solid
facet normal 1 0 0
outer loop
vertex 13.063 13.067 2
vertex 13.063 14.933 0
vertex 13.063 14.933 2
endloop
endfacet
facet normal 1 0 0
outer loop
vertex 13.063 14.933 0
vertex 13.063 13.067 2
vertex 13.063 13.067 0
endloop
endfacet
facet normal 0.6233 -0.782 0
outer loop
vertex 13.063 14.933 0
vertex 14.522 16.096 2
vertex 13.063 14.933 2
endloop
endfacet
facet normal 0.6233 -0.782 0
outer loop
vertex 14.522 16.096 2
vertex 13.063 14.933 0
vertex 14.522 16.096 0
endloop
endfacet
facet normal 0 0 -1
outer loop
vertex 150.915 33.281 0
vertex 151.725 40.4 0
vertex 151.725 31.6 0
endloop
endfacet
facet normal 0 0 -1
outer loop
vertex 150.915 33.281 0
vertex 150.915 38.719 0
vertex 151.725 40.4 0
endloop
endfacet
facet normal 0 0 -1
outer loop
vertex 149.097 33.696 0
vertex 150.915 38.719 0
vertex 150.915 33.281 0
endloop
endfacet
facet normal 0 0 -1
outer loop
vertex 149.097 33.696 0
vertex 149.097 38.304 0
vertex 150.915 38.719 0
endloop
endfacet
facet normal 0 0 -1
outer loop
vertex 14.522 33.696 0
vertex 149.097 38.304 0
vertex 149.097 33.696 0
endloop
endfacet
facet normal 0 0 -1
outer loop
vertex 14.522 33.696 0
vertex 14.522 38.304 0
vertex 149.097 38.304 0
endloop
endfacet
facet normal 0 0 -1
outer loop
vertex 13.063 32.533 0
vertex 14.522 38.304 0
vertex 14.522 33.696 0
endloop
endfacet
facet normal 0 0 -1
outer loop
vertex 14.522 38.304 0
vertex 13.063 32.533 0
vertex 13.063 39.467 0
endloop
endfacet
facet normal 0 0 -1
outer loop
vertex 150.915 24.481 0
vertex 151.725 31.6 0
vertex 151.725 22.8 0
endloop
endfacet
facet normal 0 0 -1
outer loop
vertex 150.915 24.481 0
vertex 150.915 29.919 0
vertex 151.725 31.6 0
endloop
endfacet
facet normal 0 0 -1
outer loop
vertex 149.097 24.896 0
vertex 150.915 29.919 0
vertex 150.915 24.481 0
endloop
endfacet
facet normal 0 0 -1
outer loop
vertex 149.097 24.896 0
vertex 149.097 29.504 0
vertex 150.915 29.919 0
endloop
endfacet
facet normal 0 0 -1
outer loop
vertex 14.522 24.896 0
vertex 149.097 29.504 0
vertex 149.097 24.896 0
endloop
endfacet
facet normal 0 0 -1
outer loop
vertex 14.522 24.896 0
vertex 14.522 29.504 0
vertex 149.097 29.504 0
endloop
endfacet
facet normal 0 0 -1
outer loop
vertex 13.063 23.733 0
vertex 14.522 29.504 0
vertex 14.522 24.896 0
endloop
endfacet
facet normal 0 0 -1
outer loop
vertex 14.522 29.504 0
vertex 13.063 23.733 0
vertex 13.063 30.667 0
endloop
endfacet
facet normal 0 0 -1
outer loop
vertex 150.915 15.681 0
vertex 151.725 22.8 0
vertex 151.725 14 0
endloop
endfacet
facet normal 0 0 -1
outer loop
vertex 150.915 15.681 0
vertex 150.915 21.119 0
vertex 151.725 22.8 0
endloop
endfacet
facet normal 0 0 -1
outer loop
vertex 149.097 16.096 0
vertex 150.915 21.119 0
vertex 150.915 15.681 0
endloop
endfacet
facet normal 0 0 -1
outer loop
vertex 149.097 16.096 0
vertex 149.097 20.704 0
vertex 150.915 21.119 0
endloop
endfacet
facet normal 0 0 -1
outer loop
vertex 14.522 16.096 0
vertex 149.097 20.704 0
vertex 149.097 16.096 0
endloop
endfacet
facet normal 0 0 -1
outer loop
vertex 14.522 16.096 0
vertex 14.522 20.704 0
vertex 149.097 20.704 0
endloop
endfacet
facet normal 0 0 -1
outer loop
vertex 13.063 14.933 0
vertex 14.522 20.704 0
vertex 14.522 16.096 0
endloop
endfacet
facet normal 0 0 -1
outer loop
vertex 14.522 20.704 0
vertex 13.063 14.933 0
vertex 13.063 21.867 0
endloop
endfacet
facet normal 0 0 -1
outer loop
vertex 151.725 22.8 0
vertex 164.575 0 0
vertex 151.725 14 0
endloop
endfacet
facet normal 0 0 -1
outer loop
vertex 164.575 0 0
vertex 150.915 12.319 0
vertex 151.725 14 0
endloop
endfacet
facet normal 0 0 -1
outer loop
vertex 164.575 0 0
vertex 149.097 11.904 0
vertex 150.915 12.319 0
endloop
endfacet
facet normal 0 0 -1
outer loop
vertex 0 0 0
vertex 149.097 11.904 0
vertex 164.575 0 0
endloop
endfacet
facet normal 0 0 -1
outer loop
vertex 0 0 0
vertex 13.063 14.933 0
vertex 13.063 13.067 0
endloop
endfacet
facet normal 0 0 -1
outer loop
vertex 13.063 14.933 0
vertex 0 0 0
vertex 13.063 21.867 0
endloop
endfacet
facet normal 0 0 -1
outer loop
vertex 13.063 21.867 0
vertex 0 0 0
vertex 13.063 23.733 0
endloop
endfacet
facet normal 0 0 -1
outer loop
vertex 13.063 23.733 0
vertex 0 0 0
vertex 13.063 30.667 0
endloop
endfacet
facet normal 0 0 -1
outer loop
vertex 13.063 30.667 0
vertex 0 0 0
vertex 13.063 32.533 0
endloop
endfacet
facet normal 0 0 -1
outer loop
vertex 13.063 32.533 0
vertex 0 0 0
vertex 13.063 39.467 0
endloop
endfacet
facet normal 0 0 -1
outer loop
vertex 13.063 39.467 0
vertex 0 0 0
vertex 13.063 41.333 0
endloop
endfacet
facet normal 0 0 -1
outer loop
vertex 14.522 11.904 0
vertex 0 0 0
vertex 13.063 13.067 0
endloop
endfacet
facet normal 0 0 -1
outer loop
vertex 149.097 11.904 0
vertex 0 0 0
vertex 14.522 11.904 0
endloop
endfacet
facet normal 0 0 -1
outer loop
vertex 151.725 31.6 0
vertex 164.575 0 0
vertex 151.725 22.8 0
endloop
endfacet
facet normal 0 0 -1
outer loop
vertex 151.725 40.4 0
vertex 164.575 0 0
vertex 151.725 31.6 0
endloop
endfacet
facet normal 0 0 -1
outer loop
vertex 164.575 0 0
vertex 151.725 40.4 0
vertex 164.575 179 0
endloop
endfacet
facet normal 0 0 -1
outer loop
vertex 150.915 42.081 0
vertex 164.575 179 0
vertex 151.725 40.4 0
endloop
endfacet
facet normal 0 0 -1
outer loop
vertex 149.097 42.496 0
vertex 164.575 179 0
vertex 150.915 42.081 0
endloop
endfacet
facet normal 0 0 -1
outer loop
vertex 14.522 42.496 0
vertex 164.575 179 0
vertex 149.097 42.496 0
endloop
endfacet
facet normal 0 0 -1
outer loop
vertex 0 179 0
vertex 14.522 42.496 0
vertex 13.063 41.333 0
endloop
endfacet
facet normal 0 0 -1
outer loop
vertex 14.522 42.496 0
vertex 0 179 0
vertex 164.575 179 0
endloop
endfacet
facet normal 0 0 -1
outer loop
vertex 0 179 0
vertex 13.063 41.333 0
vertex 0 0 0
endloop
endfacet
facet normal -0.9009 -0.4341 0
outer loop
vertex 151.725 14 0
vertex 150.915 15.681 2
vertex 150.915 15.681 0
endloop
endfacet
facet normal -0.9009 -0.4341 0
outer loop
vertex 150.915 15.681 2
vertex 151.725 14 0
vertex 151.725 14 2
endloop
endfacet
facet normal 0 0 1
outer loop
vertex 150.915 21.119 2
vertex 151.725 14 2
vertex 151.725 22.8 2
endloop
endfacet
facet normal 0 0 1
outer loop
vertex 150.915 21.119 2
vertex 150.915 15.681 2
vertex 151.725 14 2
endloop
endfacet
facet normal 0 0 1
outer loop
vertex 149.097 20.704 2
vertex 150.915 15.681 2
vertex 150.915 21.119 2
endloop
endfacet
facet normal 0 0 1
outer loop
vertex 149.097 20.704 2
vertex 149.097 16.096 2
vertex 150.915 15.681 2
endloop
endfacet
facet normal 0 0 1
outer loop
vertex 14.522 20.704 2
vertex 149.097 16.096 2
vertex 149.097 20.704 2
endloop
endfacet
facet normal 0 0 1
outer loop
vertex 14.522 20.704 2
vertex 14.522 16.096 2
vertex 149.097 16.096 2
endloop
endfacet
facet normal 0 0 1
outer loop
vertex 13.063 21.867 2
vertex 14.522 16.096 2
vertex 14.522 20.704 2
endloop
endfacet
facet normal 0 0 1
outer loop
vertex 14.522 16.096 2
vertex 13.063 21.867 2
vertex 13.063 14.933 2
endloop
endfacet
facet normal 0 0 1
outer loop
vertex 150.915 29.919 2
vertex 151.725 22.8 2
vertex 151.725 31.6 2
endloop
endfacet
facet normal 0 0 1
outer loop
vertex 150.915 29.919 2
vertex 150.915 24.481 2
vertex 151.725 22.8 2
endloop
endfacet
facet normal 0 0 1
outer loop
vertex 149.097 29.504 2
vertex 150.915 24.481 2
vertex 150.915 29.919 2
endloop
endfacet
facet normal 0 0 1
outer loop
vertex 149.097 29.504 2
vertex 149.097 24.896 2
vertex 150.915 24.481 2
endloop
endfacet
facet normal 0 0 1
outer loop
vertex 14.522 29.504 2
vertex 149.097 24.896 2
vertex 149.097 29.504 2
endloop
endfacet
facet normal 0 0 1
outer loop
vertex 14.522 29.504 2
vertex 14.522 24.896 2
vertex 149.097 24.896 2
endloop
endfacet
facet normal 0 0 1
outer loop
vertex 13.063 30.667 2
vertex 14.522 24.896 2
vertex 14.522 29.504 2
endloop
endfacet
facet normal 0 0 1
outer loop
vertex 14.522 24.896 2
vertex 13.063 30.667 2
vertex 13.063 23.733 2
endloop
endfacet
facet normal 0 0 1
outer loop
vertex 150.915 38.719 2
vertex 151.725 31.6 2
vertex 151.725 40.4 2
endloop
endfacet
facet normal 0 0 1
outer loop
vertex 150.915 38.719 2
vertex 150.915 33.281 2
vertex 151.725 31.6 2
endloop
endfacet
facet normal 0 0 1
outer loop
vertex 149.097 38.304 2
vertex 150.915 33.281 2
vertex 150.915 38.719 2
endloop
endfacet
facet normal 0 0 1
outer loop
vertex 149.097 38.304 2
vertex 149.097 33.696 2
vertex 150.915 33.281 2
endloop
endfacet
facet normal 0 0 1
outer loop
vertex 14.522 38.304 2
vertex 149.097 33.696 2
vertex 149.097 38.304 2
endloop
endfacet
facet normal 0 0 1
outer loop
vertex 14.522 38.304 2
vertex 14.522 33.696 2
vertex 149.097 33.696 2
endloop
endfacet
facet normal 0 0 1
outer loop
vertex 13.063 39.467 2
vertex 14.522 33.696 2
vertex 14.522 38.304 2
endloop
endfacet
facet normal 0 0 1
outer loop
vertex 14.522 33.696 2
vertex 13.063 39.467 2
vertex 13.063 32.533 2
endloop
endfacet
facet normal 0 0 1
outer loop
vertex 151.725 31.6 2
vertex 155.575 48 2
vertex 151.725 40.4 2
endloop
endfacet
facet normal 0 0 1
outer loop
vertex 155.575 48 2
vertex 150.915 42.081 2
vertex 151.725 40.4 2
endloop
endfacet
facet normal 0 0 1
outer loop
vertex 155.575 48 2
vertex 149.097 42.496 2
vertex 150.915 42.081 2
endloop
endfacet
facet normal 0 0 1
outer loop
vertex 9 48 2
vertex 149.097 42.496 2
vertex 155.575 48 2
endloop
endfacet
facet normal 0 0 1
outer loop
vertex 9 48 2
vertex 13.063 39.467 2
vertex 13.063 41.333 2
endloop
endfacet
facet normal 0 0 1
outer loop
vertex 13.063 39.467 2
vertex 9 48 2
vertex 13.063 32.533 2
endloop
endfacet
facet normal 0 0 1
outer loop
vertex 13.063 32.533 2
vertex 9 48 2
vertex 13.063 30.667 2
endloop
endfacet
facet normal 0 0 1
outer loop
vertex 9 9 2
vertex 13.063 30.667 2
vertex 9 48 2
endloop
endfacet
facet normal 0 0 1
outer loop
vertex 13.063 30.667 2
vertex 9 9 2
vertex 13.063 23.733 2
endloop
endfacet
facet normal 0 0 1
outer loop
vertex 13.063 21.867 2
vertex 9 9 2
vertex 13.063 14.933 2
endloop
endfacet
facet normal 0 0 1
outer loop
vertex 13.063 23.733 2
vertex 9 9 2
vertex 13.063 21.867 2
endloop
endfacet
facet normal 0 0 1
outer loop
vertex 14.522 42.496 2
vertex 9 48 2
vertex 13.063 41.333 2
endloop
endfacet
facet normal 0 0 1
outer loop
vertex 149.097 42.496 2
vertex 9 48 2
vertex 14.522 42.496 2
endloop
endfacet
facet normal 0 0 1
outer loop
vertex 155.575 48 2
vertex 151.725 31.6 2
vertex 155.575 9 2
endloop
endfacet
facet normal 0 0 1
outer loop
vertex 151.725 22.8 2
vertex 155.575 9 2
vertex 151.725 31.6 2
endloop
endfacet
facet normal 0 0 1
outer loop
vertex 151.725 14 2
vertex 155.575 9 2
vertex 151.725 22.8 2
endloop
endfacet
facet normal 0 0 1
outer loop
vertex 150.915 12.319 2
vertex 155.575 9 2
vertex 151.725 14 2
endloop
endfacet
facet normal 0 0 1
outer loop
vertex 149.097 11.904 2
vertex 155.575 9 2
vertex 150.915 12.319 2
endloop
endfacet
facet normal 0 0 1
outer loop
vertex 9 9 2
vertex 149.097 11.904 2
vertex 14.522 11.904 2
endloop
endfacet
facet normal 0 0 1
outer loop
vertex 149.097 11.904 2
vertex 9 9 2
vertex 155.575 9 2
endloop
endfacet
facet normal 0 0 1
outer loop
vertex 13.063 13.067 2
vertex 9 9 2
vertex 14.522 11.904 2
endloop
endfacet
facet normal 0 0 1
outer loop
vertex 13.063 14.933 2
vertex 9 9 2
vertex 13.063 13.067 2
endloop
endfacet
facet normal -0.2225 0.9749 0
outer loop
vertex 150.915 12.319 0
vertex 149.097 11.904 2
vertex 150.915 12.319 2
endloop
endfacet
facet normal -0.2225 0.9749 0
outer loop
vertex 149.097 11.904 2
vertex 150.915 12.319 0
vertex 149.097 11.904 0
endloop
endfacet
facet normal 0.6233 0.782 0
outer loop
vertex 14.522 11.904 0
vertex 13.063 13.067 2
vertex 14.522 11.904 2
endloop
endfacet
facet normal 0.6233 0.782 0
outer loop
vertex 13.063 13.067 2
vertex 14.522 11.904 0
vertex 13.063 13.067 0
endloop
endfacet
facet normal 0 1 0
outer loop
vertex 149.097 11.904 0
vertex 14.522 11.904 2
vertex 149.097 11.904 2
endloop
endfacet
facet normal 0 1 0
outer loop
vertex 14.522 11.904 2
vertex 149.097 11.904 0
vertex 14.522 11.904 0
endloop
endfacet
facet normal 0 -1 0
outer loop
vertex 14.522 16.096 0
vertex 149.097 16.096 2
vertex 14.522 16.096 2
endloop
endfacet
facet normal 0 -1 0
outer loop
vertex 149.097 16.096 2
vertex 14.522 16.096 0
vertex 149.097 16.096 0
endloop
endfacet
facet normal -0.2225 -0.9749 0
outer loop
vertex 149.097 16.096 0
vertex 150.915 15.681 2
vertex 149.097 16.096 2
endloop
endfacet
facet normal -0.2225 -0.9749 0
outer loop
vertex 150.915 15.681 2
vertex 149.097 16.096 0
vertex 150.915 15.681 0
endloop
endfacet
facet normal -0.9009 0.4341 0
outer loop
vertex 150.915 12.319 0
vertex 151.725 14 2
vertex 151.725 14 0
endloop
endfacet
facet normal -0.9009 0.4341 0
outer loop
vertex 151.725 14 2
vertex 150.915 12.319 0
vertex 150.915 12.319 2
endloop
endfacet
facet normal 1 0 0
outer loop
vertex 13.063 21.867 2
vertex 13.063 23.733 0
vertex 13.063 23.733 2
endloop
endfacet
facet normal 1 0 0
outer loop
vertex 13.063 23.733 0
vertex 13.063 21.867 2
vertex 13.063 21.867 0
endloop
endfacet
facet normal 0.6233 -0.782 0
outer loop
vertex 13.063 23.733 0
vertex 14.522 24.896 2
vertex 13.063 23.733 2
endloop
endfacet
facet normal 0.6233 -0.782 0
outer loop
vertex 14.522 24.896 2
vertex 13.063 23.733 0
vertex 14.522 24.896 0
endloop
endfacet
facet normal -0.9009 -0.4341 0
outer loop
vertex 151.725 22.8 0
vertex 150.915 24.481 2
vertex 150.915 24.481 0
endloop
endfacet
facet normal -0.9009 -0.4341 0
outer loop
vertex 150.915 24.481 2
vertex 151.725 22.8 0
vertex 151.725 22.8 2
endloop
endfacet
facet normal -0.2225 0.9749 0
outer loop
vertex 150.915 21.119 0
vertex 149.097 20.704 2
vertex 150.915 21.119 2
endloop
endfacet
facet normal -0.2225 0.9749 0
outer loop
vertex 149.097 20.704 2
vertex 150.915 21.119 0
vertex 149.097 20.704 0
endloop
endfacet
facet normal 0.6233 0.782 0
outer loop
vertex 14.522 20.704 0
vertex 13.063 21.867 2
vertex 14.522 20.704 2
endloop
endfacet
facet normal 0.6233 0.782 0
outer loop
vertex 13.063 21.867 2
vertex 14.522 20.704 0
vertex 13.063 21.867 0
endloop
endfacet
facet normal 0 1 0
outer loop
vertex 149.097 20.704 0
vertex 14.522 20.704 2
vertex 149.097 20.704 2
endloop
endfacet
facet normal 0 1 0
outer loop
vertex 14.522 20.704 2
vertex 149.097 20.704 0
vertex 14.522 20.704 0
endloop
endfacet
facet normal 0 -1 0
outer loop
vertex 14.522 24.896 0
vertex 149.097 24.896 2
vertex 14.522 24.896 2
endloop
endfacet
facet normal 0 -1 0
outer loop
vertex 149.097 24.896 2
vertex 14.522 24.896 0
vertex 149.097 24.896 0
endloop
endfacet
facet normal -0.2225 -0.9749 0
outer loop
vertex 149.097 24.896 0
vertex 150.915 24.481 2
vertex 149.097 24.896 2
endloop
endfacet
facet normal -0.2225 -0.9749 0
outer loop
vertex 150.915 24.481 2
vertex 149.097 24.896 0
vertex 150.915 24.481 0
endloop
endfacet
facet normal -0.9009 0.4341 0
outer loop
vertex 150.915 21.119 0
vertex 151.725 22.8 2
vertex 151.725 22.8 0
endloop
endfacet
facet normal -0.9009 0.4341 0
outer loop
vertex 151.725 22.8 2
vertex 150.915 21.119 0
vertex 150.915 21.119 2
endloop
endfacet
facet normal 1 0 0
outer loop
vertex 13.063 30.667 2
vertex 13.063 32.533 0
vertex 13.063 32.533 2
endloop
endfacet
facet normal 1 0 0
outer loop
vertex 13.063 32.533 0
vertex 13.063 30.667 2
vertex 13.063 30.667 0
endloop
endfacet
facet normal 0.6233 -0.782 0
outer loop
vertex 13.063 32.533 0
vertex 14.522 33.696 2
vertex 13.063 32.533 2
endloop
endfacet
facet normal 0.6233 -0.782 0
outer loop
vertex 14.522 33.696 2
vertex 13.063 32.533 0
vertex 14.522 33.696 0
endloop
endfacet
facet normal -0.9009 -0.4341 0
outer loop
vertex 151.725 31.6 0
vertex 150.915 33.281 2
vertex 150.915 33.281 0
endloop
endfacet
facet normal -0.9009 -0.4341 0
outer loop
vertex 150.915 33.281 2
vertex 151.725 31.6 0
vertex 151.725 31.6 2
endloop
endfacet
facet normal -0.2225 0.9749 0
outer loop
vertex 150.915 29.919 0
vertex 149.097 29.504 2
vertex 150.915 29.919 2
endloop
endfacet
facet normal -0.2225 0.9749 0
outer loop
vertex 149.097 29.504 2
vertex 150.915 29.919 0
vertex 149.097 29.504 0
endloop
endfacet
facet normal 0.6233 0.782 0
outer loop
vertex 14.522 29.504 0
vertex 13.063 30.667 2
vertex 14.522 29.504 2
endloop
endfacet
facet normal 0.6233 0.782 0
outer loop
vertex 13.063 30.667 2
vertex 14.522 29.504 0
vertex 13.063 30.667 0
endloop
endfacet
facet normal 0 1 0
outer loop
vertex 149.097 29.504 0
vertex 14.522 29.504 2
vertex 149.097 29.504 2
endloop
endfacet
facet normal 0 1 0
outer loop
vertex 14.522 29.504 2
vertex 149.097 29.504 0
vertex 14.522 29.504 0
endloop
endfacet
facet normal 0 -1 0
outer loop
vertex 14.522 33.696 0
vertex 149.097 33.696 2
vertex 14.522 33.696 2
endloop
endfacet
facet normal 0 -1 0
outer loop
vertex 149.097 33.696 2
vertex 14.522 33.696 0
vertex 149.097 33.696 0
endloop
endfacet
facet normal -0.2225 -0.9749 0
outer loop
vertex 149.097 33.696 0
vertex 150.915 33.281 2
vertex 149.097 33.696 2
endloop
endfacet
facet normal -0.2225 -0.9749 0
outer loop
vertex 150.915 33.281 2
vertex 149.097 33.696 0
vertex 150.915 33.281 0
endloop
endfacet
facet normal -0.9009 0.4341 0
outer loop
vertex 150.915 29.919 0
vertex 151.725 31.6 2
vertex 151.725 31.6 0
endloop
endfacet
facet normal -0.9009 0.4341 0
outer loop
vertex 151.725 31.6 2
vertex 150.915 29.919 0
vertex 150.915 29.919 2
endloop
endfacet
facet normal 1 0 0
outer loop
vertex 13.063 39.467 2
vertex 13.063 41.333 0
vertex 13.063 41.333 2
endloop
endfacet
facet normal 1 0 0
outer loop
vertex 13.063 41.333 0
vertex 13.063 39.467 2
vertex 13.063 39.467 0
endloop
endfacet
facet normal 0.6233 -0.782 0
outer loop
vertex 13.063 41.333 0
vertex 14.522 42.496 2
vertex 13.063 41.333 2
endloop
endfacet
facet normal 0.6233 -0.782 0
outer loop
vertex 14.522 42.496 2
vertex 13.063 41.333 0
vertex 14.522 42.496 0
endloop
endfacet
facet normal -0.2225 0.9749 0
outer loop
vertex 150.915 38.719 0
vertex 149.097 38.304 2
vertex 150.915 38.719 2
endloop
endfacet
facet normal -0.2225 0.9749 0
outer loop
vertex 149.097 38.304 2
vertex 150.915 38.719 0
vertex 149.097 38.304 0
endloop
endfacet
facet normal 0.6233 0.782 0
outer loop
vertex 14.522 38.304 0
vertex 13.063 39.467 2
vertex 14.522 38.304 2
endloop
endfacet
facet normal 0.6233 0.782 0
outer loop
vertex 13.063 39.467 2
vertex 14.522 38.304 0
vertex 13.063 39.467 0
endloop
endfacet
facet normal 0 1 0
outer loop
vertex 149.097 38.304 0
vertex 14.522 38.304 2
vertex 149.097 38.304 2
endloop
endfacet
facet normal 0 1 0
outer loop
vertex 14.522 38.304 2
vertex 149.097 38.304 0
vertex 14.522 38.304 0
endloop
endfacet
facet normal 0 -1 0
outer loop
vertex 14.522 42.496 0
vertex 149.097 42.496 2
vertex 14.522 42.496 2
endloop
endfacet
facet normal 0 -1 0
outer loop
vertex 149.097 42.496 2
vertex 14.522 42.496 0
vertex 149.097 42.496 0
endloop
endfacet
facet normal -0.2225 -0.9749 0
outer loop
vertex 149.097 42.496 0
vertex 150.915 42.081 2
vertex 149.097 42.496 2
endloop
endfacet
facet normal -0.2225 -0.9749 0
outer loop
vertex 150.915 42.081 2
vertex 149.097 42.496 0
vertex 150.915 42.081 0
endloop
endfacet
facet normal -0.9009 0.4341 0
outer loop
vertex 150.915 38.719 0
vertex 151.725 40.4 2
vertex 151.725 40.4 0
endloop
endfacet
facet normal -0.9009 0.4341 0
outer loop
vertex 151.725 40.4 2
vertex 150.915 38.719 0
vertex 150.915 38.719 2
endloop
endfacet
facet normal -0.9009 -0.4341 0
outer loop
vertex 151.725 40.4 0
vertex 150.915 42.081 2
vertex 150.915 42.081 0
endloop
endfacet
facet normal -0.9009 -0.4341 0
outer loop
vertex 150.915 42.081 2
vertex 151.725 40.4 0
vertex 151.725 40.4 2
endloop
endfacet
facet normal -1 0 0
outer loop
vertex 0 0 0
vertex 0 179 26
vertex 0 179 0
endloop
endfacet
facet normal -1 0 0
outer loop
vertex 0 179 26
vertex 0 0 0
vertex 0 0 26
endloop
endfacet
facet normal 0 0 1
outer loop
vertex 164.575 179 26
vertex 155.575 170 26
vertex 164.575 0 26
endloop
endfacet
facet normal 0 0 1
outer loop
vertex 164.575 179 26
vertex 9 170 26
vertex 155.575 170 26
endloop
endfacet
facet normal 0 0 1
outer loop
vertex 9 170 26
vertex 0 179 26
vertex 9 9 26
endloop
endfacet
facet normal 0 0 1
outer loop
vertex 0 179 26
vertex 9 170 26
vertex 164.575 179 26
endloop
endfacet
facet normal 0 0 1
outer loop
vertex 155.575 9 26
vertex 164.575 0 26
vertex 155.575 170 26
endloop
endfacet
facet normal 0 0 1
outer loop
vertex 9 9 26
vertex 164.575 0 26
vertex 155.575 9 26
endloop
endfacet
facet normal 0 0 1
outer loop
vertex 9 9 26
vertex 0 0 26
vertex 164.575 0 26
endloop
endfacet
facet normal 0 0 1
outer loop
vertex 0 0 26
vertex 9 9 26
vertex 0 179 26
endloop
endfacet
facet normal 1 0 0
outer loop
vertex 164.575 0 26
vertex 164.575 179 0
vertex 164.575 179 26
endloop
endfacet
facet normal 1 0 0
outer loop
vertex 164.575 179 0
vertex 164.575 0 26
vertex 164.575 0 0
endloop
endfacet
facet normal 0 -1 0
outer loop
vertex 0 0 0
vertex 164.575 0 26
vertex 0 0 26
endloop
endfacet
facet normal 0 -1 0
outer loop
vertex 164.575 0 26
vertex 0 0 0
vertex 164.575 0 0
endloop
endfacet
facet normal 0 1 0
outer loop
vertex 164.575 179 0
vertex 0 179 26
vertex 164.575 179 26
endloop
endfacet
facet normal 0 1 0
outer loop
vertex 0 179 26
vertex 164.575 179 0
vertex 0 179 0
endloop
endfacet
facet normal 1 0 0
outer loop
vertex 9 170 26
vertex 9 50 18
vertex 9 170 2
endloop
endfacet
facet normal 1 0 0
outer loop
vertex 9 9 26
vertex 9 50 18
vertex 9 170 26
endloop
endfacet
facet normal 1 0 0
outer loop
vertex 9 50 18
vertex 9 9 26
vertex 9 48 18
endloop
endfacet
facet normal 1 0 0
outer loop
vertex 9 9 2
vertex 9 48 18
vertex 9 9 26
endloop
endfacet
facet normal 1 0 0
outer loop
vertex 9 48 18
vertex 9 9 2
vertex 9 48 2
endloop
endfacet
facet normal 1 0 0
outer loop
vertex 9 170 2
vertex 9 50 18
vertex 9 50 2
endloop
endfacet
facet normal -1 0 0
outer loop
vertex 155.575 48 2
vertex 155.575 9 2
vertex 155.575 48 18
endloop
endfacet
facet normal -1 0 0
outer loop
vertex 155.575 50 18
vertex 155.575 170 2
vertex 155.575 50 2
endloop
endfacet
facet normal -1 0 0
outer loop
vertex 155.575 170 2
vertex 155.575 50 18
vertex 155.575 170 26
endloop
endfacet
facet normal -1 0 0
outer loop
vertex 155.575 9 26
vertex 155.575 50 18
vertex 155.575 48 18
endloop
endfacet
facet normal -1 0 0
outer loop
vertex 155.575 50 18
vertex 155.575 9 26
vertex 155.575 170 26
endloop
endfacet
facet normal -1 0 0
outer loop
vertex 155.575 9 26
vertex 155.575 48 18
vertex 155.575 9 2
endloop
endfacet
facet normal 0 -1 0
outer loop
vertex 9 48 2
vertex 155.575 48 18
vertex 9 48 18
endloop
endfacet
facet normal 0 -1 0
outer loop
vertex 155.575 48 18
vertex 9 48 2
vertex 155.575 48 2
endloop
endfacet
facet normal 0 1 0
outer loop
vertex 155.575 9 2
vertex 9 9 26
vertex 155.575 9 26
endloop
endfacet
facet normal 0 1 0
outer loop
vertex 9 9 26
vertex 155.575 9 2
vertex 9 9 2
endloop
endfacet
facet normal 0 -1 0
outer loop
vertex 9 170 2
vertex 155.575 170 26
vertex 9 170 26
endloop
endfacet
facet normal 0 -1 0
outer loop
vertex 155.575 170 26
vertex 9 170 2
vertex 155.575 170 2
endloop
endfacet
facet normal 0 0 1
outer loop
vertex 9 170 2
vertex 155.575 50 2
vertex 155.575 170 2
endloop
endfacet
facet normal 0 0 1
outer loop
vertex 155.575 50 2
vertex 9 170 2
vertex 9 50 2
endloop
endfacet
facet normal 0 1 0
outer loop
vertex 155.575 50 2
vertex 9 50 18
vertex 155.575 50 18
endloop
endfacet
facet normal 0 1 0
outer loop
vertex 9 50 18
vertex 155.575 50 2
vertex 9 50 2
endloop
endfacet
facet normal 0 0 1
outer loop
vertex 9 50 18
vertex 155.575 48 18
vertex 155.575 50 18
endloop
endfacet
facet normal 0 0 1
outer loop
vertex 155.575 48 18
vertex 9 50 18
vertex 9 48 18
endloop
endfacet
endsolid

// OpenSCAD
// use the same width and depth as with the bee box
// this feed tray is better suited for solid foods due to
// the nature of 3D printing

width = 146.575; 
depth = 179;
height = 26;

difference() {
cube([width+18,depth,height]);
        color("blue") translate([9,9,2]) cube([width,39,height]);
        translate([0,4,0]) queen_excluder(width);
translate([9,50,2]) cube([width,(depth-18-39-2),height]);
translate([9,48,18]) cube([width,2,16]); 
}



module queen_excluder(length=146.575) { // using diameter of 4.3mm
    for(i = [10 : 8.8 : 44]) {
        translate([(length-(length-30))/2,i,0])
        hull() {
            cylinder(d=4.3,h=2);
            translate([length-12,0,0]) cylinder(d=4.3,h=2);
        }
    }
}
